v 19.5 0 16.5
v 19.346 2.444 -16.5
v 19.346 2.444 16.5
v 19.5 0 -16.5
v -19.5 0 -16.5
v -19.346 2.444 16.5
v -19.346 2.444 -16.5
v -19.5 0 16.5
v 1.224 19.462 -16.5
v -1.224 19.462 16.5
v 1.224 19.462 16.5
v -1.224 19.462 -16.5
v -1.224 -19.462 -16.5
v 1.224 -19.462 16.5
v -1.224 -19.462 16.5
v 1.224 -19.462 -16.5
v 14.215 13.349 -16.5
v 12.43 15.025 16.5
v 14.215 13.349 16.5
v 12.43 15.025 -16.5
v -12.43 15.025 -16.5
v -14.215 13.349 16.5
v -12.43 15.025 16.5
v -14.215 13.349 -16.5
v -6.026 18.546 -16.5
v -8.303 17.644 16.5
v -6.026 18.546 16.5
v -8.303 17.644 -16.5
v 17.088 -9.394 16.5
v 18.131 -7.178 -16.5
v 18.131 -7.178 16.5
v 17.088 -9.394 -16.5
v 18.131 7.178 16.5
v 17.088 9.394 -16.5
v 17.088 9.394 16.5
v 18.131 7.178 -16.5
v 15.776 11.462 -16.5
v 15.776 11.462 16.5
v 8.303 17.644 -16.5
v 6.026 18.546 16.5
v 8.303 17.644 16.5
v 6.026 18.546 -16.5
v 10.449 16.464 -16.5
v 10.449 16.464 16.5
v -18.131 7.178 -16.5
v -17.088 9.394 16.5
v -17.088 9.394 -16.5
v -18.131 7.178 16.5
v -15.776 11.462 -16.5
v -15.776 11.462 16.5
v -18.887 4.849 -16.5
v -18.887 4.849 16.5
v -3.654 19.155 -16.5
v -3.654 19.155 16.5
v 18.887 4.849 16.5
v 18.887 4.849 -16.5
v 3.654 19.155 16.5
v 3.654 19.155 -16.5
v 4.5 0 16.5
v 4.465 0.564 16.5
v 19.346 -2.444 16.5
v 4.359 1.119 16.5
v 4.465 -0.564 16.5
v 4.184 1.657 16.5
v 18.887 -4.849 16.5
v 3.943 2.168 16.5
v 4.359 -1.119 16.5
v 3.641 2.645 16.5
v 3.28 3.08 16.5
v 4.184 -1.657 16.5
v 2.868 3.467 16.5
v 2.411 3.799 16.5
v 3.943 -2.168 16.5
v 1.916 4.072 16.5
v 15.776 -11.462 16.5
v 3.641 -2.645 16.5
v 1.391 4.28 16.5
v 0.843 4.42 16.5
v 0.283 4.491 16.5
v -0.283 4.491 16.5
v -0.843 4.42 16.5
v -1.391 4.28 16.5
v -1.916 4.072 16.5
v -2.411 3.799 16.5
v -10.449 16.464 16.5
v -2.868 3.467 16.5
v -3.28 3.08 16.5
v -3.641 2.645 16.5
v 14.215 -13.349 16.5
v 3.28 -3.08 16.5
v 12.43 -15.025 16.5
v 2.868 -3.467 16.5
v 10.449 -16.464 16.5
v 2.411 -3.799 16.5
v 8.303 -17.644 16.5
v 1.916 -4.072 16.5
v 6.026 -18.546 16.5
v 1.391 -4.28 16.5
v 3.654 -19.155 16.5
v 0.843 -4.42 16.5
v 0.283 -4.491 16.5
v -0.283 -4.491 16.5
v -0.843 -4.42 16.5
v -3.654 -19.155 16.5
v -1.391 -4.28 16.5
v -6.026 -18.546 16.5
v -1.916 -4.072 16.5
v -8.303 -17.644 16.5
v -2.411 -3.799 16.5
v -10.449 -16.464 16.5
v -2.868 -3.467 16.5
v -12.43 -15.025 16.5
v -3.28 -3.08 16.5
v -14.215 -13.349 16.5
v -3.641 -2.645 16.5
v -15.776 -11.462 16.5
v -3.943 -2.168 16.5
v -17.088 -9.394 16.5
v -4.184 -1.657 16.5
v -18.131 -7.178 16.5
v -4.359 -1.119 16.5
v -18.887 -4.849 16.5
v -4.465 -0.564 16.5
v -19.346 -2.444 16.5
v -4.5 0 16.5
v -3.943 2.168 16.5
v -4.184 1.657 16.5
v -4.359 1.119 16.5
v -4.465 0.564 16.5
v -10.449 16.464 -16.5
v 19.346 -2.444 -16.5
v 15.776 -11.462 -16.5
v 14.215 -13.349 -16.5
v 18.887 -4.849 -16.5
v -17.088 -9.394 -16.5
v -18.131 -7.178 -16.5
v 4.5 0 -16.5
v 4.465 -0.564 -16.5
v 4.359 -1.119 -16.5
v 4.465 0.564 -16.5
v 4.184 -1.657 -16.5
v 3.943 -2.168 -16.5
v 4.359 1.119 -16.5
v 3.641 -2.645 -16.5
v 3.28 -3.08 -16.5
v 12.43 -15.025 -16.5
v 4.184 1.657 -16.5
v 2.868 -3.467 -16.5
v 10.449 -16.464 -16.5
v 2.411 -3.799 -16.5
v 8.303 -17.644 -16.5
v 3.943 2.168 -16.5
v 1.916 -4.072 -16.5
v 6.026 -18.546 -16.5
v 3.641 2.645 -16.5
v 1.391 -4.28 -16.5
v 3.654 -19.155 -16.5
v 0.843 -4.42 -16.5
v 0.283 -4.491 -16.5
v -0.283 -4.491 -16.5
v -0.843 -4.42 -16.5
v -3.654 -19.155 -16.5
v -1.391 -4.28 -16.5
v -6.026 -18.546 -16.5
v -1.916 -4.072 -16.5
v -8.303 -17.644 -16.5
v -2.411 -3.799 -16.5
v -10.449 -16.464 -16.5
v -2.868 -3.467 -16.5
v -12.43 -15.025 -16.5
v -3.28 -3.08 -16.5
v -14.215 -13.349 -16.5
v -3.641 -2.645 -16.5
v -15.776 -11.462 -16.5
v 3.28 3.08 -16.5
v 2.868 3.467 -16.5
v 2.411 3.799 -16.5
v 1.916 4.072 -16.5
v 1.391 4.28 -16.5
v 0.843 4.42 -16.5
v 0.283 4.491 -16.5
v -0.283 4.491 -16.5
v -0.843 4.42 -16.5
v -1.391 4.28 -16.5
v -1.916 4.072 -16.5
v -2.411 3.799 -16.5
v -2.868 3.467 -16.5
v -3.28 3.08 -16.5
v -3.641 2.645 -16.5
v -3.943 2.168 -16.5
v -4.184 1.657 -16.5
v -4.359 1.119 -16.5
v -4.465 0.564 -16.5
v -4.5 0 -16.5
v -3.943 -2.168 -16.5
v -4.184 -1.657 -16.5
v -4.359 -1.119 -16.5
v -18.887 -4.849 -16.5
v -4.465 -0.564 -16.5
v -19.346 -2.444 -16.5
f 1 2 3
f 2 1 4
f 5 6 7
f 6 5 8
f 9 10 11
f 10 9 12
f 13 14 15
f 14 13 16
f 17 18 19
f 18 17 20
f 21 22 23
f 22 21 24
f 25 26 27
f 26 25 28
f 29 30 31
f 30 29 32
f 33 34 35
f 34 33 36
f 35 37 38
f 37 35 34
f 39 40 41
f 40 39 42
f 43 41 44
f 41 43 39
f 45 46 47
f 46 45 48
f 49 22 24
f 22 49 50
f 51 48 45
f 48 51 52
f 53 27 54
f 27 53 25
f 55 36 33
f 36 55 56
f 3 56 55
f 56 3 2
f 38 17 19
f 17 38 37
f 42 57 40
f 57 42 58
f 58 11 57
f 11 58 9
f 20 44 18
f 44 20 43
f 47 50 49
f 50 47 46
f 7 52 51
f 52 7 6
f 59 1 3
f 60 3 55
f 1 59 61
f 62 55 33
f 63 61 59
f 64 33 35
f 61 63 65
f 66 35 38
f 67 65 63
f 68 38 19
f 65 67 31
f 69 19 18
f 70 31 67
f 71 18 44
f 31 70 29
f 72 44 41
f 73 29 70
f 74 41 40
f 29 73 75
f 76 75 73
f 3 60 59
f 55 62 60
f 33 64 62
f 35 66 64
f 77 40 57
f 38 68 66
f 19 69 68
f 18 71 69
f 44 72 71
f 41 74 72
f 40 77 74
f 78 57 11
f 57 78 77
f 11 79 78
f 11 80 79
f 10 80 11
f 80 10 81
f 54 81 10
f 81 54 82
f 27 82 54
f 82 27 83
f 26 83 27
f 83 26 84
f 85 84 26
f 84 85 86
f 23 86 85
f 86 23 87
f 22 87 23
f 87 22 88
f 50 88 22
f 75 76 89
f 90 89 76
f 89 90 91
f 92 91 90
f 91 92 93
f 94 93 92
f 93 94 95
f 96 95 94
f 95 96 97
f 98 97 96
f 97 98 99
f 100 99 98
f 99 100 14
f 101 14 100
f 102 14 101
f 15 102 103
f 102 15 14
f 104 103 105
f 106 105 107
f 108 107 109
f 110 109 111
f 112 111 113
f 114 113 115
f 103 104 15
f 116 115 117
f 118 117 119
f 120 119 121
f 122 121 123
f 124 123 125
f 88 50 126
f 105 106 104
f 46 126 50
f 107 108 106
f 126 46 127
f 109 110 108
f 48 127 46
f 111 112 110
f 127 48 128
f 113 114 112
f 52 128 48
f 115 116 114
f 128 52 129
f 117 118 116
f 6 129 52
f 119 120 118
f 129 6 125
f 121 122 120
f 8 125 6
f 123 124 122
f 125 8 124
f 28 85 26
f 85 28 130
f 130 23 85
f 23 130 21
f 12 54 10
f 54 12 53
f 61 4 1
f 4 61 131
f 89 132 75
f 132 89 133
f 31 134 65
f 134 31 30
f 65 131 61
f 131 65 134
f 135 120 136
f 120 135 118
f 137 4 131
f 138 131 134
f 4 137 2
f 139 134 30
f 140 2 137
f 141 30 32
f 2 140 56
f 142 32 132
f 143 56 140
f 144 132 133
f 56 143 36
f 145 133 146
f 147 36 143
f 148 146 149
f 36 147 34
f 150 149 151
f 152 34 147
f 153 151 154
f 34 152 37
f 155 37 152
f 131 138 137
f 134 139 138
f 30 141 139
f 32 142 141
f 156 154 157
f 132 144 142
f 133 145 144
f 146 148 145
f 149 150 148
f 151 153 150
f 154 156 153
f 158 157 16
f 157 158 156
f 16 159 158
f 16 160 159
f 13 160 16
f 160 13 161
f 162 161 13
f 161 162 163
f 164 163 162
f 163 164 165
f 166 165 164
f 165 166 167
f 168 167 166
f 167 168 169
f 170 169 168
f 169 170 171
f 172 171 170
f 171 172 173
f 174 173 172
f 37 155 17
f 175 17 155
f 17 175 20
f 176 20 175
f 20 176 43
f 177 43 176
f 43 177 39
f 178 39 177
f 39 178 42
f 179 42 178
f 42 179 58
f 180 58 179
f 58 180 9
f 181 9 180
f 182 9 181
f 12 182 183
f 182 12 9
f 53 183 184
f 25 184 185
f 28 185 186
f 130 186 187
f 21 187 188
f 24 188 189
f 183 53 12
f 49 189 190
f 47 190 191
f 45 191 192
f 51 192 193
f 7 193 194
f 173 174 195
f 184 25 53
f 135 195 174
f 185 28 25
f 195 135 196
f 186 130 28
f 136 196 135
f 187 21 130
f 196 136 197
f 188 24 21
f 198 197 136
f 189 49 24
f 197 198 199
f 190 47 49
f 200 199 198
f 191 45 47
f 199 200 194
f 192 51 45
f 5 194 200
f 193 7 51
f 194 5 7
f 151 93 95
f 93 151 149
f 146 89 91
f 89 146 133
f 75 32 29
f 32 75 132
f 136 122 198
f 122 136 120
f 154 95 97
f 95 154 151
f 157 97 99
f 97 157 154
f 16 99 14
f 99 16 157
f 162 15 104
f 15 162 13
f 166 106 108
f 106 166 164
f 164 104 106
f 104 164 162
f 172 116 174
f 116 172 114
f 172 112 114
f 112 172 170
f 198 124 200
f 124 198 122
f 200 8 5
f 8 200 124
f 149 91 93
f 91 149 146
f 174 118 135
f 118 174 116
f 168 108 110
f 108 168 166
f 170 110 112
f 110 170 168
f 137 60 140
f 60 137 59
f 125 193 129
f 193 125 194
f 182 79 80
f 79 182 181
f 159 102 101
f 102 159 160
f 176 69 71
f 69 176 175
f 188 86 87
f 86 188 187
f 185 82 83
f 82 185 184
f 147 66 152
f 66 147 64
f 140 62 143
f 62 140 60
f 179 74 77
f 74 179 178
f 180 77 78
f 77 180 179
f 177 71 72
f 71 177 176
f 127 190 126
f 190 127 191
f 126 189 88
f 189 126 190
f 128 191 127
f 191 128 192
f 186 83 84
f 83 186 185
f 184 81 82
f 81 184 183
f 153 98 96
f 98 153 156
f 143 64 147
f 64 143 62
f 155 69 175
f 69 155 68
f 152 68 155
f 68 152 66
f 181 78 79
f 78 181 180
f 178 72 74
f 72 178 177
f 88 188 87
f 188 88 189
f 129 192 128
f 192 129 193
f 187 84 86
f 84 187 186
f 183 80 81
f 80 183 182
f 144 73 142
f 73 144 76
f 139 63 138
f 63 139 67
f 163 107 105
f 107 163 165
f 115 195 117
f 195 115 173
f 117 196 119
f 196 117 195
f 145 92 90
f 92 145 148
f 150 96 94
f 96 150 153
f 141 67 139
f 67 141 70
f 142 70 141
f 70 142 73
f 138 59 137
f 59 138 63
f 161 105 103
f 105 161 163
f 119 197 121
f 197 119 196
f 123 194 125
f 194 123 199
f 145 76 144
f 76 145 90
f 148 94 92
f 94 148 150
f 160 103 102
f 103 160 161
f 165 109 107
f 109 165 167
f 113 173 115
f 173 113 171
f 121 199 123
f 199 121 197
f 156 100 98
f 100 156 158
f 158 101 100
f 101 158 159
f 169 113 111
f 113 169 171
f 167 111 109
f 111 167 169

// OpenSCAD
$fn = 50;


difference() {
	union() {
		translate(v = [0, 0, -16.5000000000]) {
			cylinder(h = 33, r = 19.5000000000);
		}
	}
	union() {
		translate(v = [0, 0, -100.0000000000]) {
			cylinder(h = 200, r = 4.5000000000);
		}
	}
}
